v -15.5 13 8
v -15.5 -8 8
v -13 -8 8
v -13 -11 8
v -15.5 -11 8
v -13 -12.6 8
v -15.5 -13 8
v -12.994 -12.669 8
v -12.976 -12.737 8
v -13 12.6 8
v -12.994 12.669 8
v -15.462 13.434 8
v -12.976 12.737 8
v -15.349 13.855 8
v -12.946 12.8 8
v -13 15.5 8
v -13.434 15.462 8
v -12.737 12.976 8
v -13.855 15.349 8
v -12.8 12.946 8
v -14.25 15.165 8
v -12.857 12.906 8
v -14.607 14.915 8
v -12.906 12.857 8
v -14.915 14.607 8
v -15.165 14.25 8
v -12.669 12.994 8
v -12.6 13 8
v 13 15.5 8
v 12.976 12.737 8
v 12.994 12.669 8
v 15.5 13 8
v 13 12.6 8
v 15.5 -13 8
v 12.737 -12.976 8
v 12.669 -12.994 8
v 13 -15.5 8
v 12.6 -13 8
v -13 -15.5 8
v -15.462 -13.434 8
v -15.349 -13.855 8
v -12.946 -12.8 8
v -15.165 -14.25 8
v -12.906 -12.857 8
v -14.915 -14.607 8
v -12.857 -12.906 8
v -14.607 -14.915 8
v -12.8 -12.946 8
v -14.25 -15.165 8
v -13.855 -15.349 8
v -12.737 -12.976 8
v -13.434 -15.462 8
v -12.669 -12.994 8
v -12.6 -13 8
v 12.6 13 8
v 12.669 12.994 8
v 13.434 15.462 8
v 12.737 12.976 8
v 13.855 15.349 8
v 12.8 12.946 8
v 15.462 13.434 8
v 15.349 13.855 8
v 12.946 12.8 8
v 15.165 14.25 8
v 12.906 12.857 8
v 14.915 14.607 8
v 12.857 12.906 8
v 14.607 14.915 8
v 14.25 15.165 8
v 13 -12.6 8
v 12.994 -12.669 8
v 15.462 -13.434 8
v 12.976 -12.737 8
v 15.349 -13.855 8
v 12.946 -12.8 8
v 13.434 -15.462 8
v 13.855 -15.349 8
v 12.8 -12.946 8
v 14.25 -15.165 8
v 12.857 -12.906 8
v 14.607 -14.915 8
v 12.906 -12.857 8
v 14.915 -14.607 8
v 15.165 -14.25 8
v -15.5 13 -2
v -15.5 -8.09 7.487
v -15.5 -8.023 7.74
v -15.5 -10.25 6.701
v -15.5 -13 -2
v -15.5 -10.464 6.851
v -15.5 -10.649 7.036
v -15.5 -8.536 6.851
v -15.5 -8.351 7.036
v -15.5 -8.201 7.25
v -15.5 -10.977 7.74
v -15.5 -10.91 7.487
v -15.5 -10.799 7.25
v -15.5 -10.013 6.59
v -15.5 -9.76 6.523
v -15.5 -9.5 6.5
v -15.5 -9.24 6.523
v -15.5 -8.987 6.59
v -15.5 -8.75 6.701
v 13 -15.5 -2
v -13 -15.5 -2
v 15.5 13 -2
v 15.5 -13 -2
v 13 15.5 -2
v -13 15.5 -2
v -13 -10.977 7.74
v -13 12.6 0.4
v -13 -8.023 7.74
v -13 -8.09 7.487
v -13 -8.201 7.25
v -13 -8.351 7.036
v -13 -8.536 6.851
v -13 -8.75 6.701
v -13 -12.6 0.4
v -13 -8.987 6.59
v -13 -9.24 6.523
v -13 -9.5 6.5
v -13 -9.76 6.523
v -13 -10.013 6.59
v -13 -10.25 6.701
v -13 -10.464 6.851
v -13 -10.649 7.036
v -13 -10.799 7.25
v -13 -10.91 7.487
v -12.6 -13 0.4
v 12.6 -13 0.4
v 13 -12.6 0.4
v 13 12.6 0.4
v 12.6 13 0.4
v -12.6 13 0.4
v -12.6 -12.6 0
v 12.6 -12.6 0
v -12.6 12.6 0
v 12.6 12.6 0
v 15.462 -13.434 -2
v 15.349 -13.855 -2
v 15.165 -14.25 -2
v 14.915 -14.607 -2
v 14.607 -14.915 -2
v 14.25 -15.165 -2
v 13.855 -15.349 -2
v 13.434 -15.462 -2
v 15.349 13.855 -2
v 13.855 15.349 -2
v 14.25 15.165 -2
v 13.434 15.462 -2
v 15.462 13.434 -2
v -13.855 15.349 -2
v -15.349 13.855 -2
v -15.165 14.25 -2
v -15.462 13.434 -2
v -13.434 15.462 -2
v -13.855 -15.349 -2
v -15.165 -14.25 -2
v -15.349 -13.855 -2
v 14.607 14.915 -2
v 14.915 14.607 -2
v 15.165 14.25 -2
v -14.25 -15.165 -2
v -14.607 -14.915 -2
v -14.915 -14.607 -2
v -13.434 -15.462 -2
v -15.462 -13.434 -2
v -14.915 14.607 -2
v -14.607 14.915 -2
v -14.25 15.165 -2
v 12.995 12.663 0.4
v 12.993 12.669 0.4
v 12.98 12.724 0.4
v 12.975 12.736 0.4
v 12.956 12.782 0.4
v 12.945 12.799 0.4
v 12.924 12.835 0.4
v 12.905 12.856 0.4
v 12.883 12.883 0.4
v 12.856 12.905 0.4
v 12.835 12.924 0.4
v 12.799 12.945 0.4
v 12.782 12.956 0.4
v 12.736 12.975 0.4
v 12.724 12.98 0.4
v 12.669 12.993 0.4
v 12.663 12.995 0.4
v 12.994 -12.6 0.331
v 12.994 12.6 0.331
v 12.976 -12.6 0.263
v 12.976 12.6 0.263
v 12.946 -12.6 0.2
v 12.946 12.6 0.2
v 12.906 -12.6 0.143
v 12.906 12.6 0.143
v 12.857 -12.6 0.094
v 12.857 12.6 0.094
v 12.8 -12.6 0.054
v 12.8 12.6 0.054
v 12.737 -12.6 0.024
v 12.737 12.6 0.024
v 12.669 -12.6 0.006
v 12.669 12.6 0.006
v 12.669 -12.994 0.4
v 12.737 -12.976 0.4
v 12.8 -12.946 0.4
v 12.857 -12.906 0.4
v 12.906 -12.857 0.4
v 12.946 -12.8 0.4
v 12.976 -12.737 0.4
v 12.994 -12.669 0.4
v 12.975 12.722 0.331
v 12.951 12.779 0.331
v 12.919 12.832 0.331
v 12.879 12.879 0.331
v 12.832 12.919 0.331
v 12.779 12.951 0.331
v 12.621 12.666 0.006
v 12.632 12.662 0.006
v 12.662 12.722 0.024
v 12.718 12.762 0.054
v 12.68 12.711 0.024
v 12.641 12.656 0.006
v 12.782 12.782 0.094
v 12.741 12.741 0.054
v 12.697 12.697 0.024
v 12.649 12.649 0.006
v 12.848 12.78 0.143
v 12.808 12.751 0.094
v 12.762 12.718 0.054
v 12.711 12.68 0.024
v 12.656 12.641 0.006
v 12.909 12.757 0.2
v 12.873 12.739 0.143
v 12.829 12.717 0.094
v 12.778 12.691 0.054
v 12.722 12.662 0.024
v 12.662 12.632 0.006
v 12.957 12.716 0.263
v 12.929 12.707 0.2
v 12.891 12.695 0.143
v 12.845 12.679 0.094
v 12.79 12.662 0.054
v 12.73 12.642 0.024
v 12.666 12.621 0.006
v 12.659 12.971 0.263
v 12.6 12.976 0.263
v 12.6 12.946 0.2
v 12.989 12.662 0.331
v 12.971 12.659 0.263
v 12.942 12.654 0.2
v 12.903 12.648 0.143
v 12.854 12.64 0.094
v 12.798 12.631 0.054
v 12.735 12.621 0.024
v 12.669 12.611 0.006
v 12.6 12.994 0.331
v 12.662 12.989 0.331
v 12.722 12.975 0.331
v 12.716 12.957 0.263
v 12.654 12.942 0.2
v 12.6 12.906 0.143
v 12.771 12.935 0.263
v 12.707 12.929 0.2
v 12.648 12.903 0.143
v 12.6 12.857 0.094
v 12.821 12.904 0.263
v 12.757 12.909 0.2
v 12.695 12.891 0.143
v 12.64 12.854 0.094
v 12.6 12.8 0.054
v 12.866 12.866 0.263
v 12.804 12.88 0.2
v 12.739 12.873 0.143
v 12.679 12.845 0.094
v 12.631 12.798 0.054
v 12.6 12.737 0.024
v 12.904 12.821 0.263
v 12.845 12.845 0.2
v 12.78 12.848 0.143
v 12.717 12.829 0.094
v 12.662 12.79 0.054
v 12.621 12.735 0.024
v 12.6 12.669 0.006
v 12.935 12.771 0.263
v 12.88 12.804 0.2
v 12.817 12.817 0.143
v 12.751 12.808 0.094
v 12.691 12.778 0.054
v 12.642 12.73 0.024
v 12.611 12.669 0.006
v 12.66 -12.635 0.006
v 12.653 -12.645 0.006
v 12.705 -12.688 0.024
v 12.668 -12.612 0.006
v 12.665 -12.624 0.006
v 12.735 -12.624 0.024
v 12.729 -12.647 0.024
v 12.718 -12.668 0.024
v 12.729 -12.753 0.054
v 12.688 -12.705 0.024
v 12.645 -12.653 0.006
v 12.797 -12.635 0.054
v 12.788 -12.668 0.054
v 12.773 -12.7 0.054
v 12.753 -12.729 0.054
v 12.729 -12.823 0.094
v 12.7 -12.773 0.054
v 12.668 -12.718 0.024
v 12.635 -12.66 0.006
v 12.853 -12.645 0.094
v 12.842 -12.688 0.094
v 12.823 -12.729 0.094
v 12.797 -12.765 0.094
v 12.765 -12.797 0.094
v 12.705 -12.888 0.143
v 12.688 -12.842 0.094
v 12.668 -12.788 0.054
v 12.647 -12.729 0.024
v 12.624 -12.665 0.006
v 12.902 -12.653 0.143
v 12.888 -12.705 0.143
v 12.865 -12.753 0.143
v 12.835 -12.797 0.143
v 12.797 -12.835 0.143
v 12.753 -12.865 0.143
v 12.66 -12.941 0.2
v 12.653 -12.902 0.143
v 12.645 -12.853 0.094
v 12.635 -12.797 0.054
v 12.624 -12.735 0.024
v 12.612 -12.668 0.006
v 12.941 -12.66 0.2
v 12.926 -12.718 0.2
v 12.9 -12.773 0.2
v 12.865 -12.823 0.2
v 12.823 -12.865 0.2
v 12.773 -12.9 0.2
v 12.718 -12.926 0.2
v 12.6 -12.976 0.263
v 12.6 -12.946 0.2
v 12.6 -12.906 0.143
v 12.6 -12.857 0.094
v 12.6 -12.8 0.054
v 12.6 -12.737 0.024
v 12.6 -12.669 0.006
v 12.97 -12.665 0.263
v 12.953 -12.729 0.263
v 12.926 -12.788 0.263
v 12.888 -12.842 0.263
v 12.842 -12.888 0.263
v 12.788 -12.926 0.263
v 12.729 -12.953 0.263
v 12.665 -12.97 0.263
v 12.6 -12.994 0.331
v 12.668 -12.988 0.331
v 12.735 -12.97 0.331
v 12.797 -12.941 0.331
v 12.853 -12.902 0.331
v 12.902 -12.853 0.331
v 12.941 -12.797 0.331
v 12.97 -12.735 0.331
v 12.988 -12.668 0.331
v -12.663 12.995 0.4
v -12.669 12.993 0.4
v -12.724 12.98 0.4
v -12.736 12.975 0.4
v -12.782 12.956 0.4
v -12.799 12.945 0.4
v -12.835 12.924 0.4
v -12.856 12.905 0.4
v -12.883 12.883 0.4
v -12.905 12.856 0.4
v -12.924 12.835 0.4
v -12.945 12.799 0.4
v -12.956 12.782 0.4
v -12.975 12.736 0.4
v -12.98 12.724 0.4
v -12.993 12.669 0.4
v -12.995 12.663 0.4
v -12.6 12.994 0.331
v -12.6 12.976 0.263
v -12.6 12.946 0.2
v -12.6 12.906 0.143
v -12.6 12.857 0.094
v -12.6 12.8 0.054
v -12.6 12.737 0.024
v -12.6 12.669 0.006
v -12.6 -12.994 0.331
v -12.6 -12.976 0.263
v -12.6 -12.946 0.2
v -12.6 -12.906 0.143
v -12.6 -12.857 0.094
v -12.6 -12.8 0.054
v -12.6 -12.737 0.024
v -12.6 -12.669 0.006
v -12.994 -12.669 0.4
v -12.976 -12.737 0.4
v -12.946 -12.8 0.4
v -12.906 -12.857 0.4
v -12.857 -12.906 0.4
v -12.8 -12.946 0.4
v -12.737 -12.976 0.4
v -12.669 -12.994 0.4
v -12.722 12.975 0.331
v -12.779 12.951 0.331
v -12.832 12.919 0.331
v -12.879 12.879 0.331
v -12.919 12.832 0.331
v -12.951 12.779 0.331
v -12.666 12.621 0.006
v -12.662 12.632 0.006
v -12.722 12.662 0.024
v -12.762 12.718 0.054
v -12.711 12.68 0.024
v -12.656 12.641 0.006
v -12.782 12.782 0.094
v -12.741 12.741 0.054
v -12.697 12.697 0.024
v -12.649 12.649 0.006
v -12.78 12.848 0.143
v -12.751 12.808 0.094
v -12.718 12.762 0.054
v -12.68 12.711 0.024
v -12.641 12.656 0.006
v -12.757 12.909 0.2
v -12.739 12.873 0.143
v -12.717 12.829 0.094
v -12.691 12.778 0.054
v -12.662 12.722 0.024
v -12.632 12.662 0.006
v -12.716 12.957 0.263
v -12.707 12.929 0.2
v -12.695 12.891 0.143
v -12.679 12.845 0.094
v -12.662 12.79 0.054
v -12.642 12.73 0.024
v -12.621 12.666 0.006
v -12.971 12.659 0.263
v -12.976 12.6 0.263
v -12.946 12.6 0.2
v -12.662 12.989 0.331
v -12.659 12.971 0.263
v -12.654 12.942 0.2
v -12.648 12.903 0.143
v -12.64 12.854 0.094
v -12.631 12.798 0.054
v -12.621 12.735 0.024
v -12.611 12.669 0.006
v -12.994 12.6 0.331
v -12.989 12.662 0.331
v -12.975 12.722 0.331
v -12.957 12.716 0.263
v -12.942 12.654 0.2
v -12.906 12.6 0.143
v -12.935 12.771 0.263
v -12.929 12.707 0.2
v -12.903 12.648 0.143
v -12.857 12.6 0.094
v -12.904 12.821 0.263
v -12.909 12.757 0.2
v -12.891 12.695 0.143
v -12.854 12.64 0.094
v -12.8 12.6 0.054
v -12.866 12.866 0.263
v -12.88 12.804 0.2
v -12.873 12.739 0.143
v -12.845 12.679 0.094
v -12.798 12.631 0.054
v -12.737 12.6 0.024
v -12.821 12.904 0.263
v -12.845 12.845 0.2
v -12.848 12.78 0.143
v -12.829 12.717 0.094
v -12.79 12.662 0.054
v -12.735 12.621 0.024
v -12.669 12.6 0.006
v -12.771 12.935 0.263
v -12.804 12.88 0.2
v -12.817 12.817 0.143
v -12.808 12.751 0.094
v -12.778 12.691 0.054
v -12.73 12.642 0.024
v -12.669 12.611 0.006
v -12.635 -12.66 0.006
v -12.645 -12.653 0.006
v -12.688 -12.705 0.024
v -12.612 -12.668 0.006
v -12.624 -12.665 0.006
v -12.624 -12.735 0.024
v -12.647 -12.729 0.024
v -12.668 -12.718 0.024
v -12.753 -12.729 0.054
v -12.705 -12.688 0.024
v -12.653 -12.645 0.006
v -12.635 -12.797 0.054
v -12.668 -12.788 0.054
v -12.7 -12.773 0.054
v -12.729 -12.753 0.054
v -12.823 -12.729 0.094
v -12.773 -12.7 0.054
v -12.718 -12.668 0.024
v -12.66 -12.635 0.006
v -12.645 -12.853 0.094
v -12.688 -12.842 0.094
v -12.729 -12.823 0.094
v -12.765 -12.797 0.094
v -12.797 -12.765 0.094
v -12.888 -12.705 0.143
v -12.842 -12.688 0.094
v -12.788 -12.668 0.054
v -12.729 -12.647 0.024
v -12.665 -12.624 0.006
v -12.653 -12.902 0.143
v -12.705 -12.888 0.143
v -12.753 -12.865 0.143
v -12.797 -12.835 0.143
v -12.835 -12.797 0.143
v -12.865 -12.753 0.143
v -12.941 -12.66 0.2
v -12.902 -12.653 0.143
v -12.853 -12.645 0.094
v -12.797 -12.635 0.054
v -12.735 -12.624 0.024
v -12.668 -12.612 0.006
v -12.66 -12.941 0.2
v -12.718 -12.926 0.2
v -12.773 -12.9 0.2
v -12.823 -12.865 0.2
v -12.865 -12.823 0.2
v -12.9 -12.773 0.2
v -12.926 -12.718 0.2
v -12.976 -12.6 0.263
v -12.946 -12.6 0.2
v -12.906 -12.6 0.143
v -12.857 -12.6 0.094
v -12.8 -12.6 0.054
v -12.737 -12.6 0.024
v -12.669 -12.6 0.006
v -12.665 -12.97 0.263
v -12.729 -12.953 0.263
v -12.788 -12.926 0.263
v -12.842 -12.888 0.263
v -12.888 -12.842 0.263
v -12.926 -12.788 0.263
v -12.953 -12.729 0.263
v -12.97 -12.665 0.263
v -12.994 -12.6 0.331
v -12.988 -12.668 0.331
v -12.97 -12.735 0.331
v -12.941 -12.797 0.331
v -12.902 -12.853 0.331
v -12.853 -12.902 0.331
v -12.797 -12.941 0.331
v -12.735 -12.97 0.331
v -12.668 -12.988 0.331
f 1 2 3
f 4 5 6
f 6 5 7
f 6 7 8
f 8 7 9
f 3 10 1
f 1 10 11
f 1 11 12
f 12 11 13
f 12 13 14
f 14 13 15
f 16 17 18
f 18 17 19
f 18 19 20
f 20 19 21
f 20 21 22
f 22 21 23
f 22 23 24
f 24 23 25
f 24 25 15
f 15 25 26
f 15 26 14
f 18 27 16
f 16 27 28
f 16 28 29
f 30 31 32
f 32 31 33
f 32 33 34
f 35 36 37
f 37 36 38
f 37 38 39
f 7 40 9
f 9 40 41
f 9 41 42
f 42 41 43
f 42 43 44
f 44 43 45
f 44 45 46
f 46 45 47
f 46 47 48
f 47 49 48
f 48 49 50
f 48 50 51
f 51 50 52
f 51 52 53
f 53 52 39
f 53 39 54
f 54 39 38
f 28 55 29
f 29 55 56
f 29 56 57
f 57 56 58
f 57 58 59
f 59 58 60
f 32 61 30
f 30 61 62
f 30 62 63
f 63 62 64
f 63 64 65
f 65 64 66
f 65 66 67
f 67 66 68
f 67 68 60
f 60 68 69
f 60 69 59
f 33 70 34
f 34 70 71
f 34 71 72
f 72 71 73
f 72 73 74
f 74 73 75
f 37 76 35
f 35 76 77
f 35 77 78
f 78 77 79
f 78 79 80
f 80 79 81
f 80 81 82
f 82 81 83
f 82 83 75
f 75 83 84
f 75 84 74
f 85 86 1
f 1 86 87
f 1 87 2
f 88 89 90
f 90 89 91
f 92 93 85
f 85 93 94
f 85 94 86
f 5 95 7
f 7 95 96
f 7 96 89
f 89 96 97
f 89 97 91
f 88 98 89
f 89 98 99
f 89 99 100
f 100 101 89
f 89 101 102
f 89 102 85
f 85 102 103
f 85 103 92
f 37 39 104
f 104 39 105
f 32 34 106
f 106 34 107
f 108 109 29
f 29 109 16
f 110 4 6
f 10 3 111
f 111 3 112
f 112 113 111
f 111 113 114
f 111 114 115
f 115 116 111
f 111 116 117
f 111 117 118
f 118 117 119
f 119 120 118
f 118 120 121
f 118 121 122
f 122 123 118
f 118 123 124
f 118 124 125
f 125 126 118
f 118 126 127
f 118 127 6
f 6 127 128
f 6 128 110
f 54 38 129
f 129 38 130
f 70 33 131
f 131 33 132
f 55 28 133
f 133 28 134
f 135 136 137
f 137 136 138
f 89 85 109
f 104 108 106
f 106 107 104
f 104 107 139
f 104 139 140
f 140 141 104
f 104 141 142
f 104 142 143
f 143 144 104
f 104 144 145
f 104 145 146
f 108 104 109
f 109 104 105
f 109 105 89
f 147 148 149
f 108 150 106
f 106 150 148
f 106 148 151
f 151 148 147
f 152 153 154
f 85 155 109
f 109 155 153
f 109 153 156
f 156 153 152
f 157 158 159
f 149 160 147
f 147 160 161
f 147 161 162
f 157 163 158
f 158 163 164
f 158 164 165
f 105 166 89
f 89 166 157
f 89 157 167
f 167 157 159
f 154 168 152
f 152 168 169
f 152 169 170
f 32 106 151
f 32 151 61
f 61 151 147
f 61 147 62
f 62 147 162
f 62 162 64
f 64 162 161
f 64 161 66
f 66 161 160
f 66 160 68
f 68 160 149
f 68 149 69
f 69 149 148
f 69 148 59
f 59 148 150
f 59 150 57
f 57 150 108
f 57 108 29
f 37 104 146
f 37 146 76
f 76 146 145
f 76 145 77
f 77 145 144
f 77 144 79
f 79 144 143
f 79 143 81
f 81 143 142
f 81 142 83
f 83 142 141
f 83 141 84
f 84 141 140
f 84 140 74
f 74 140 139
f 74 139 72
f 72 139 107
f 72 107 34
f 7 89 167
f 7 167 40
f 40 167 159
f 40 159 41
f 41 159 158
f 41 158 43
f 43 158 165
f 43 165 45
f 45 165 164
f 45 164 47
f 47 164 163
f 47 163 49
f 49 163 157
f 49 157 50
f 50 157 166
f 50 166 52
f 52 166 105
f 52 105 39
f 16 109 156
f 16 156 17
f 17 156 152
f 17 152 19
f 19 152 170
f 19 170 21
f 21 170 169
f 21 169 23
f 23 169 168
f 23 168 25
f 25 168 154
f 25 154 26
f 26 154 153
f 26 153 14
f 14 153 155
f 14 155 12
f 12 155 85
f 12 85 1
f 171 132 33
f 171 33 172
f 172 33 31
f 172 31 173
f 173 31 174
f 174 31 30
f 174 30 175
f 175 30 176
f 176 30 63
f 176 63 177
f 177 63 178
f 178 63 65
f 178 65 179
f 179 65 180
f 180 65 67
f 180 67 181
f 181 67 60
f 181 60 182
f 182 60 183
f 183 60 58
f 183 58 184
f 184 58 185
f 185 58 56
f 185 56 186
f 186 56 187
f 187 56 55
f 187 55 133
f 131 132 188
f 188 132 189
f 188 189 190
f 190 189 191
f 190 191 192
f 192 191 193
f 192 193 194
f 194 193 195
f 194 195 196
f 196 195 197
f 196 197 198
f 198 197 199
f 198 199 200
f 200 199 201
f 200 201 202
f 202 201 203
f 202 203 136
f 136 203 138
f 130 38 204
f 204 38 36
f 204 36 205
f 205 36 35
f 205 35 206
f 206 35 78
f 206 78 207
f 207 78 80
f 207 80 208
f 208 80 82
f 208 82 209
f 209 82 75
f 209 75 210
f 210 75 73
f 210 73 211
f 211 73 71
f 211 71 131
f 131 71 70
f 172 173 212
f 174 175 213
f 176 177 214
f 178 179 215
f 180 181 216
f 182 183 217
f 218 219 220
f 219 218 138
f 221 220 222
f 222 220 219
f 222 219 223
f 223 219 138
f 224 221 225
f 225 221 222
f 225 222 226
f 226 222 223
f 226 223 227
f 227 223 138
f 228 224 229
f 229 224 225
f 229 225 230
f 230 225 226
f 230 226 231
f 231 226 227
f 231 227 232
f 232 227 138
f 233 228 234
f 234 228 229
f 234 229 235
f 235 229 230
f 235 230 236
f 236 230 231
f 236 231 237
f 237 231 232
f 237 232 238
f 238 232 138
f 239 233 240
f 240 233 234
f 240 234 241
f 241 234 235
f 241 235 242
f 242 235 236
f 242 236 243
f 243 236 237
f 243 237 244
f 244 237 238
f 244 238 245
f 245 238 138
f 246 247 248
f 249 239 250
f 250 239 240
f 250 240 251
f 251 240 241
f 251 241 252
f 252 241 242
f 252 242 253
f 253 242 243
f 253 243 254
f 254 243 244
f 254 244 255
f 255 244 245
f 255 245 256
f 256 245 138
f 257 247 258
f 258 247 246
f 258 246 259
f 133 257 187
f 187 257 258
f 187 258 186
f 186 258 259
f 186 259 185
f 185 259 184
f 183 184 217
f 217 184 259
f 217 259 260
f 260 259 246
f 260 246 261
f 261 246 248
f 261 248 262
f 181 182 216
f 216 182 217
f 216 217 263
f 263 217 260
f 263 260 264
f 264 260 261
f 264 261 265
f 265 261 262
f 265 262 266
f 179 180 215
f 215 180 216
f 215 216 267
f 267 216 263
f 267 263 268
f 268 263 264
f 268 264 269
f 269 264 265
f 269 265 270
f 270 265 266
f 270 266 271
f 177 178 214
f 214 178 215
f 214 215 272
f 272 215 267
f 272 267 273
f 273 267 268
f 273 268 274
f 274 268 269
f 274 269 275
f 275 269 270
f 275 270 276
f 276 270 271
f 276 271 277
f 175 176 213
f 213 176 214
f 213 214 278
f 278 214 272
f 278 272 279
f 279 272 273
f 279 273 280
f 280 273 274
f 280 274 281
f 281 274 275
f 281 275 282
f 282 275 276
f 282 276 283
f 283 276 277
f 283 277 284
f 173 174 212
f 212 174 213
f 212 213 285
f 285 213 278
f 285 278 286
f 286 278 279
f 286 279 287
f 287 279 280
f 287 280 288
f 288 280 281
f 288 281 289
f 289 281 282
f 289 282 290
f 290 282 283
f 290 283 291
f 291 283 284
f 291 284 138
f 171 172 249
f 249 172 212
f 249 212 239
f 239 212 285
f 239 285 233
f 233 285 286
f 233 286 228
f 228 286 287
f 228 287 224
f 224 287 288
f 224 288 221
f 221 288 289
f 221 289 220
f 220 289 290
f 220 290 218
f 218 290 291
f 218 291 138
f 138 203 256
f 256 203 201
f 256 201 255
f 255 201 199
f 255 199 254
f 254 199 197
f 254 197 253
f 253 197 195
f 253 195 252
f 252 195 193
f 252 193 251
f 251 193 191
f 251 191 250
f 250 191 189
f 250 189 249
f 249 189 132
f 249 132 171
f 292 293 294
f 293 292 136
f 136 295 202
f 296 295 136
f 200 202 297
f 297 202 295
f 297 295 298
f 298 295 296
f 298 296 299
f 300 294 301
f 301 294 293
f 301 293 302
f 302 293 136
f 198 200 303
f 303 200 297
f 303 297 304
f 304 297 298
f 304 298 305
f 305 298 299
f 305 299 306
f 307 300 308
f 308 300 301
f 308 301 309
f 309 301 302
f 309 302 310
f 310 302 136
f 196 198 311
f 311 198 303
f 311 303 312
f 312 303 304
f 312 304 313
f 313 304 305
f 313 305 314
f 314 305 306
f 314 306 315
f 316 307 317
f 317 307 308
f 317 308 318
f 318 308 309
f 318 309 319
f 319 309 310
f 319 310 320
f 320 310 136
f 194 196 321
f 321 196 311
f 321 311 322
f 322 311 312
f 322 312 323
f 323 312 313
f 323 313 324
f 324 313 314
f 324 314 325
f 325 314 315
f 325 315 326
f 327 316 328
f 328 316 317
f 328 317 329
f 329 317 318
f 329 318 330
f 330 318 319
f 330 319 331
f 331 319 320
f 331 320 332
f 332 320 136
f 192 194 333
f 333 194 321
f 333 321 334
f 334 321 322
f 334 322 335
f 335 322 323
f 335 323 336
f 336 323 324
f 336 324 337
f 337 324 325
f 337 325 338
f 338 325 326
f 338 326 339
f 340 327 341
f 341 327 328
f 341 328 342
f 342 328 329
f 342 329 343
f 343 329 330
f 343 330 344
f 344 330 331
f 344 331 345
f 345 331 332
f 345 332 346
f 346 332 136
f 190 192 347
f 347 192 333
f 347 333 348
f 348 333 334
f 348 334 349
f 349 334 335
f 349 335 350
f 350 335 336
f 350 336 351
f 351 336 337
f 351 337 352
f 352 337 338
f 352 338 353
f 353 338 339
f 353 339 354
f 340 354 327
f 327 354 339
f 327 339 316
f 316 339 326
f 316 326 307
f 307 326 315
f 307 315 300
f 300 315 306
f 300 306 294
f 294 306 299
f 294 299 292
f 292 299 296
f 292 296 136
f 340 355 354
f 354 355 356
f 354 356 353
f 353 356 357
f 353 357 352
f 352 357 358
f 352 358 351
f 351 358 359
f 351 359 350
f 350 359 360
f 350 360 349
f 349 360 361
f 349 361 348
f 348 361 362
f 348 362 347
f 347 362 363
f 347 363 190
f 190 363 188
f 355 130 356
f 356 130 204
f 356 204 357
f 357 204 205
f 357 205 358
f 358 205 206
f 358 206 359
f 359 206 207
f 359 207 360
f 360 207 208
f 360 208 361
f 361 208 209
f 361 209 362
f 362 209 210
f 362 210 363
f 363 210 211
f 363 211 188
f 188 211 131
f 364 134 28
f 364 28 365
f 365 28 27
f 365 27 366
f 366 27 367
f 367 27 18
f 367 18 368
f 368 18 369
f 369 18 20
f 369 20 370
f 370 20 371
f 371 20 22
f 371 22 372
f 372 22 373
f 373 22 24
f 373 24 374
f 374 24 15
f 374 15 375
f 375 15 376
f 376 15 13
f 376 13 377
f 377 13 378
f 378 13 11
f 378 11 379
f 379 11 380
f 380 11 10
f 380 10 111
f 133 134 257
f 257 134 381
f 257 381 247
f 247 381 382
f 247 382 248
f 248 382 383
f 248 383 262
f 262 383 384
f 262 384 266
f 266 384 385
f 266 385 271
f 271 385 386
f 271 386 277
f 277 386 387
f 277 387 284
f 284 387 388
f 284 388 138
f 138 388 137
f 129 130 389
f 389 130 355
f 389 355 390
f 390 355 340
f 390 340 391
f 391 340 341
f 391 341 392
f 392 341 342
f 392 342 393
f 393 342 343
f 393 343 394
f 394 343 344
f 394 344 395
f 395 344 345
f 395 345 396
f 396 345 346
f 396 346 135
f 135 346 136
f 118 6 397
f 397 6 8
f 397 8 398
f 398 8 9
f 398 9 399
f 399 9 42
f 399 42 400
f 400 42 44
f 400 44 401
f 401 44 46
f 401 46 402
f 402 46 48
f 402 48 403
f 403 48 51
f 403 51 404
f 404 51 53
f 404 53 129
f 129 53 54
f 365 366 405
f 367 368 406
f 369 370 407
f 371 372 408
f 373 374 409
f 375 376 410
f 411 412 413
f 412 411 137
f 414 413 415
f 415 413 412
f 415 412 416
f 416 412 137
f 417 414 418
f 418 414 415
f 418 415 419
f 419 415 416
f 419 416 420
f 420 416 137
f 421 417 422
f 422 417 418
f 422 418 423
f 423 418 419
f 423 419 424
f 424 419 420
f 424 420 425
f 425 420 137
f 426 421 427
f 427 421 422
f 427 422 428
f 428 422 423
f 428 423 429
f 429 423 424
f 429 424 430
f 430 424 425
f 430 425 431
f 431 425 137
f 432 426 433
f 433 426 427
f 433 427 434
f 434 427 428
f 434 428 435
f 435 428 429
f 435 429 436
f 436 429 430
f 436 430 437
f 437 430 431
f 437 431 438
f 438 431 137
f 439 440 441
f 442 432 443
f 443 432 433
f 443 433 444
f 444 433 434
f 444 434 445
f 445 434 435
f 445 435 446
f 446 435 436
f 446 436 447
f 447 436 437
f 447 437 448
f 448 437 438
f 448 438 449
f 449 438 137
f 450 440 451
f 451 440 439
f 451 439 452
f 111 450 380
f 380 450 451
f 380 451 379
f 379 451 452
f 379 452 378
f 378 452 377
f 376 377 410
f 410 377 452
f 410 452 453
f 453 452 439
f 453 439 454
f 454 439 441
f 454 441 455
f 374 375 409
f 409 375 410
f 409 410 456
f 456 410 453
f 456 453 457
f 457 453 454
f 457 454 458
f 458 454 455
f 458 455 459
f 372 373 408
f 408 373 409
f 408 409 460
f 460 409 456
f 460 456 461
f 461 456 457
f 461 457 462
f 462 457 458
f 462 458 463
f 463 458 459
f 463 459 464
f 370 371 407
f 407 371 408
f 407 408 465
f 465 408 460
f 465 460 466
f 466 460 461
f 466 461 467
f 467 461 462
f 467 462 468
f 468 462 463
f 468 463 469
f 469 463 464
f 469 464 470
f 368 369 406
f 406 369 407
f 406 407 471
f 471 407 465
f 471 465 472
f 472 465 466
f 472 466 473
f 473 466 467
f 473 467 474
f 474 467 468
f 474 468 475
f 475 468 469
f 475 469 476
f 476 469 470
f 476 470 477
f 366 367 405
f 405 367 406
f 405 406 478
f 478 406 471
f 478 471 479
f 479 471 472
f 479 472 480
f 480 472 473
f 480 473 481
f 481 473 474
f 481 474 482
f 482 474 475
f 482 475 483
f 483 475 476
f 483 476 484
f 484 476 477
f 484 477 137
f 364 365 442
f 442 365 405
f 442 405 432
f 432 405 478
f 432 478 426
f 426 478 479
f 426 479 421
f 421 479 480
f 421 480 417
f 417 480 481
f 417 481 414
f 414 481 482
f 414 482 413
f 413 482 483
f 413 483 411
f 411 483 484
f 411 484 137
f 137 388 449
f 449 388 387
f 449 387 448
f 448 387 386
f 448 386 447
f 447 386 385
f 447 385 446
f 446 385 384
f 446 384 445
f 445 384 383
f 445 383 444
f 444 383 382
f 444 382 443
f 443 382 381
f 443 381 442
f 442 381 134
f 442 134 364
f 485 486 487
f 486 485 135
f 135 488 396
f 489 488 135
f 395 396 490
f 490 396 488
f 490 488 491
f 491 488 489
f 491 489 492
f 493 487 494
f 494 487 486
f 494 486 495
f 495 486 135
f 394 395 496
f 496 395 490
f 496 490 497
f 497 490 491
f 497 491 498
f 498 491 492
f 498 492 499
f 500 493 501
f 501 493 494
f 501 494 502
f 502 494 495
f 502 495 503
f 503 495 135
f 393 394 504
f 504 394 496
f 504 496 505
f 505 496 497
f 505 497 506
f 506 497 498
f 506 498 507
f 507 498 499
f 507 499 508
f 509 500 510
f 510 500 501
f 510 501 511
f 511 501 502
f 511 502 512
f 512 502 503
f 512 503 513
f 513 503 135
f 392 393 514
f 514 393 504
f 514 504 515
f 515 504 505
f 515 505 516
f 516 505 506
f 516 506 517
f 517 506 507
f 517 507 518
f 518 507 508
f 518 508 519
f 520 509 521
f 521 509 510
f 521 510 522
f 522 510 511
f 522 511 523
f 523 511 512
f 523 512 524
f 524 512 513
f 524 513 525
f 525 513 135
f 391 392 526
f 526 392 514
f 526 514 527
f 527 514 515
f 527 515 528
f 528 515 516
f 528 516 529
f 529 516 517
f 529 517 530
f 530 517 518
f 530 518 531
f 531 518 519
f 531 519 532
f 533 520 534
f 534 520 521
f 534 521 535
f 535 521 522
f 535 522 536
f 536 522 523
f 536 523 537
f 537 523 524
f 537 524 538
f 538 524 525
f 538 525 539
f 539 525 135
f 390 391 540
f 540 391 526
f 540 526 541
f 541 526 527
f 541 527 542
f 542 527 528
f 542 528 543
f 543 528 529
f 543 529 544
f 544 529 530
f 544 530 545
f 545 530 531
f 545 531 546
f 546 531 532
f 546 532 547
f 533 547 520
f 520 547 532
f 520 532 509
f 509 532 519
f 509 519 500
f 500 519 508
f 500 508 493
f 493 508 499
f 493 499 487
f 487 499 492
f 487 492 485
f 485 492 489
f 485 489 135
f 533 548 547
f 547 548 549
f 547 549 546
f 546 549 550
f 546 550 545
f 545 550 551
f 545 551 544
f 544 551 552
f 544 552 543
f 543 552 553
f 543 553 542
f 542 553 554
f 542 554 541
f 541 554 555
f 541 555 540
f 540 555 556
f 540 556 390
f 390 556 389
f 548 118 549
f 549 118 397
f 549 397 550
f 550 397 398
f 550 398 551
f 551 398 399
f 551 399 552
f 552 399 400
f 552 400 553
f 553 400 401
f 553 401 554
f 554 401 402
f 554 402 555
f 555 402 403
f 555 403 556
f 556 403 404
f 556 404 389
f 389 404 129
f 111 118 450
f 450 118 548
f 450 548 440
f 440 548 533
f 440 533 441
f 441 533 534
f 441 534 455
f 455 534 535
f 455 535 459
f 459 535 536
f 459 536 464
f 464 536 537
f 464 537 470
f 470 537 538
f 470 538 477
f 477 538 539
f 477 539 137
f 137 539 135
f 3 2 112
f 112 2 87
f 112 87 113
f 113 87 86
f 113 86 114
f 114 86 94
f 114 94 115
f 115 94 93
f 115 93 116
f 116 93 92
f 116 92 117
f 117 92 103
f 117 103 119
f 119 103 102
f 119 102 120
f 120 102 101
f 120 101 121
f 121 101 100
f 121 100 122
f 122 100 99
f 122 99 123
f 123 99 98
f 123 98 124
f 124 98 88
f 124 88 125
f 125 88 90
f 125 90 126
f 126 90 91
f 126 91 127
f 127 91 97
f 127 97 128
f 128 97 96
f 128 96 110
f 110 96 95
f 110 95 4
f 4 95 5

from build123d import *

# Parameters (mm, degrees)
SCHIZZO1_W                   = 31
SCHIZZO1_H                   = 31
SCHIZZO1_W_2                 = 26
SCHIZZO1_H_2                 = 26
ESTRUSIONE_SOTTILE1_DEPTH    = 8
SCHIZZO2_W                   = 31
SCHIZZO2_H                   = 31
ESTRUSIONE_ESTRUSIONE1_DEPTH = 2
RACCORDO1_R                  = 2.5
RACCORDO2_R                  = 0.4
TAGLIO_ESTRUSIONE1_REACH     = 37.57
SCHIZZO3_R                   = 1.5


with BuildPart() as part:
    # Schizzo1 → Estrusione-Sottile1 (new body)
    with BuildSketch(Plane.XY):
        Rectangle(SCHIZZO1_W, SCHIZZO1_H)
        Rectangle(SCHIZZO1_W_2, SCHIZZO1_H_2, mode=Mode.SUBTRACT)
    extrude(amount=ESTRUSIONE_SOTTILE1_DEPTH)

    # Schizzo2 → Estrusione-Estrusione1 (add)
    with BuildSketch(Plane(origin=(0, 0, 0), x_dir=(-1, 0, 0), z_dir=(0, 0, -1))):
        Rectangle(SCHIZZO2_W, SCHIZZO2_H)
    extrude(amount=ESTRUSIONE_ESTRUSIONE1_DEPTH)

    # Raccordo1
    raccordo1_edges = [part.edges().sort_by_distance(p)[0] for p in [
        (-15.5, 15.5, 3),
        (15.5, 15.5, 3),
        (15.5, -15.5, 3),
        (-15.5, -15.5, 3),
    ]]
    fillet(raccordo1_edges, radius=RACCORDO1_R)

    # Raccordo2
    raccordo2_edges = [part.edges().sort_by_distance(p)[0] for p in [
        (-13, 0, 0),
        (-13, 13, 4),
        (0, -13, 0),
        (-13, -13, 4),
        (13, 0, 0),
        (13, -13, 4),
        (0, 13, 0),
        (13, 13, 4),
    ]]
    fillet(raccordo2_edges, radius=RACCORDO2_R)

    # Schizzo3 → Taglio-Estrusione1 (cut, up to next)
    with BuildSketch(Plane.ZY.offset(15.5), mode=Mode.PRIVATE) as taglio_estrusione1_sk1:
        with Locations((8, -9.5)):
            Circle(SCHIZZO3_R)
    taglio_estrusione1_tool1 = extrude(taglio_estrusione1_sk1.sketch, amount=-TAGLIO_ESTRUSIONE1_REACH, mode=Mode.PRIVATE) & part.part
    add(taglio_estrusione1_tool1.solids().sort_by_distance((-15.5, -9.5, 8))[0], mode=Mode.SUBTRACT)


solid = part.part
